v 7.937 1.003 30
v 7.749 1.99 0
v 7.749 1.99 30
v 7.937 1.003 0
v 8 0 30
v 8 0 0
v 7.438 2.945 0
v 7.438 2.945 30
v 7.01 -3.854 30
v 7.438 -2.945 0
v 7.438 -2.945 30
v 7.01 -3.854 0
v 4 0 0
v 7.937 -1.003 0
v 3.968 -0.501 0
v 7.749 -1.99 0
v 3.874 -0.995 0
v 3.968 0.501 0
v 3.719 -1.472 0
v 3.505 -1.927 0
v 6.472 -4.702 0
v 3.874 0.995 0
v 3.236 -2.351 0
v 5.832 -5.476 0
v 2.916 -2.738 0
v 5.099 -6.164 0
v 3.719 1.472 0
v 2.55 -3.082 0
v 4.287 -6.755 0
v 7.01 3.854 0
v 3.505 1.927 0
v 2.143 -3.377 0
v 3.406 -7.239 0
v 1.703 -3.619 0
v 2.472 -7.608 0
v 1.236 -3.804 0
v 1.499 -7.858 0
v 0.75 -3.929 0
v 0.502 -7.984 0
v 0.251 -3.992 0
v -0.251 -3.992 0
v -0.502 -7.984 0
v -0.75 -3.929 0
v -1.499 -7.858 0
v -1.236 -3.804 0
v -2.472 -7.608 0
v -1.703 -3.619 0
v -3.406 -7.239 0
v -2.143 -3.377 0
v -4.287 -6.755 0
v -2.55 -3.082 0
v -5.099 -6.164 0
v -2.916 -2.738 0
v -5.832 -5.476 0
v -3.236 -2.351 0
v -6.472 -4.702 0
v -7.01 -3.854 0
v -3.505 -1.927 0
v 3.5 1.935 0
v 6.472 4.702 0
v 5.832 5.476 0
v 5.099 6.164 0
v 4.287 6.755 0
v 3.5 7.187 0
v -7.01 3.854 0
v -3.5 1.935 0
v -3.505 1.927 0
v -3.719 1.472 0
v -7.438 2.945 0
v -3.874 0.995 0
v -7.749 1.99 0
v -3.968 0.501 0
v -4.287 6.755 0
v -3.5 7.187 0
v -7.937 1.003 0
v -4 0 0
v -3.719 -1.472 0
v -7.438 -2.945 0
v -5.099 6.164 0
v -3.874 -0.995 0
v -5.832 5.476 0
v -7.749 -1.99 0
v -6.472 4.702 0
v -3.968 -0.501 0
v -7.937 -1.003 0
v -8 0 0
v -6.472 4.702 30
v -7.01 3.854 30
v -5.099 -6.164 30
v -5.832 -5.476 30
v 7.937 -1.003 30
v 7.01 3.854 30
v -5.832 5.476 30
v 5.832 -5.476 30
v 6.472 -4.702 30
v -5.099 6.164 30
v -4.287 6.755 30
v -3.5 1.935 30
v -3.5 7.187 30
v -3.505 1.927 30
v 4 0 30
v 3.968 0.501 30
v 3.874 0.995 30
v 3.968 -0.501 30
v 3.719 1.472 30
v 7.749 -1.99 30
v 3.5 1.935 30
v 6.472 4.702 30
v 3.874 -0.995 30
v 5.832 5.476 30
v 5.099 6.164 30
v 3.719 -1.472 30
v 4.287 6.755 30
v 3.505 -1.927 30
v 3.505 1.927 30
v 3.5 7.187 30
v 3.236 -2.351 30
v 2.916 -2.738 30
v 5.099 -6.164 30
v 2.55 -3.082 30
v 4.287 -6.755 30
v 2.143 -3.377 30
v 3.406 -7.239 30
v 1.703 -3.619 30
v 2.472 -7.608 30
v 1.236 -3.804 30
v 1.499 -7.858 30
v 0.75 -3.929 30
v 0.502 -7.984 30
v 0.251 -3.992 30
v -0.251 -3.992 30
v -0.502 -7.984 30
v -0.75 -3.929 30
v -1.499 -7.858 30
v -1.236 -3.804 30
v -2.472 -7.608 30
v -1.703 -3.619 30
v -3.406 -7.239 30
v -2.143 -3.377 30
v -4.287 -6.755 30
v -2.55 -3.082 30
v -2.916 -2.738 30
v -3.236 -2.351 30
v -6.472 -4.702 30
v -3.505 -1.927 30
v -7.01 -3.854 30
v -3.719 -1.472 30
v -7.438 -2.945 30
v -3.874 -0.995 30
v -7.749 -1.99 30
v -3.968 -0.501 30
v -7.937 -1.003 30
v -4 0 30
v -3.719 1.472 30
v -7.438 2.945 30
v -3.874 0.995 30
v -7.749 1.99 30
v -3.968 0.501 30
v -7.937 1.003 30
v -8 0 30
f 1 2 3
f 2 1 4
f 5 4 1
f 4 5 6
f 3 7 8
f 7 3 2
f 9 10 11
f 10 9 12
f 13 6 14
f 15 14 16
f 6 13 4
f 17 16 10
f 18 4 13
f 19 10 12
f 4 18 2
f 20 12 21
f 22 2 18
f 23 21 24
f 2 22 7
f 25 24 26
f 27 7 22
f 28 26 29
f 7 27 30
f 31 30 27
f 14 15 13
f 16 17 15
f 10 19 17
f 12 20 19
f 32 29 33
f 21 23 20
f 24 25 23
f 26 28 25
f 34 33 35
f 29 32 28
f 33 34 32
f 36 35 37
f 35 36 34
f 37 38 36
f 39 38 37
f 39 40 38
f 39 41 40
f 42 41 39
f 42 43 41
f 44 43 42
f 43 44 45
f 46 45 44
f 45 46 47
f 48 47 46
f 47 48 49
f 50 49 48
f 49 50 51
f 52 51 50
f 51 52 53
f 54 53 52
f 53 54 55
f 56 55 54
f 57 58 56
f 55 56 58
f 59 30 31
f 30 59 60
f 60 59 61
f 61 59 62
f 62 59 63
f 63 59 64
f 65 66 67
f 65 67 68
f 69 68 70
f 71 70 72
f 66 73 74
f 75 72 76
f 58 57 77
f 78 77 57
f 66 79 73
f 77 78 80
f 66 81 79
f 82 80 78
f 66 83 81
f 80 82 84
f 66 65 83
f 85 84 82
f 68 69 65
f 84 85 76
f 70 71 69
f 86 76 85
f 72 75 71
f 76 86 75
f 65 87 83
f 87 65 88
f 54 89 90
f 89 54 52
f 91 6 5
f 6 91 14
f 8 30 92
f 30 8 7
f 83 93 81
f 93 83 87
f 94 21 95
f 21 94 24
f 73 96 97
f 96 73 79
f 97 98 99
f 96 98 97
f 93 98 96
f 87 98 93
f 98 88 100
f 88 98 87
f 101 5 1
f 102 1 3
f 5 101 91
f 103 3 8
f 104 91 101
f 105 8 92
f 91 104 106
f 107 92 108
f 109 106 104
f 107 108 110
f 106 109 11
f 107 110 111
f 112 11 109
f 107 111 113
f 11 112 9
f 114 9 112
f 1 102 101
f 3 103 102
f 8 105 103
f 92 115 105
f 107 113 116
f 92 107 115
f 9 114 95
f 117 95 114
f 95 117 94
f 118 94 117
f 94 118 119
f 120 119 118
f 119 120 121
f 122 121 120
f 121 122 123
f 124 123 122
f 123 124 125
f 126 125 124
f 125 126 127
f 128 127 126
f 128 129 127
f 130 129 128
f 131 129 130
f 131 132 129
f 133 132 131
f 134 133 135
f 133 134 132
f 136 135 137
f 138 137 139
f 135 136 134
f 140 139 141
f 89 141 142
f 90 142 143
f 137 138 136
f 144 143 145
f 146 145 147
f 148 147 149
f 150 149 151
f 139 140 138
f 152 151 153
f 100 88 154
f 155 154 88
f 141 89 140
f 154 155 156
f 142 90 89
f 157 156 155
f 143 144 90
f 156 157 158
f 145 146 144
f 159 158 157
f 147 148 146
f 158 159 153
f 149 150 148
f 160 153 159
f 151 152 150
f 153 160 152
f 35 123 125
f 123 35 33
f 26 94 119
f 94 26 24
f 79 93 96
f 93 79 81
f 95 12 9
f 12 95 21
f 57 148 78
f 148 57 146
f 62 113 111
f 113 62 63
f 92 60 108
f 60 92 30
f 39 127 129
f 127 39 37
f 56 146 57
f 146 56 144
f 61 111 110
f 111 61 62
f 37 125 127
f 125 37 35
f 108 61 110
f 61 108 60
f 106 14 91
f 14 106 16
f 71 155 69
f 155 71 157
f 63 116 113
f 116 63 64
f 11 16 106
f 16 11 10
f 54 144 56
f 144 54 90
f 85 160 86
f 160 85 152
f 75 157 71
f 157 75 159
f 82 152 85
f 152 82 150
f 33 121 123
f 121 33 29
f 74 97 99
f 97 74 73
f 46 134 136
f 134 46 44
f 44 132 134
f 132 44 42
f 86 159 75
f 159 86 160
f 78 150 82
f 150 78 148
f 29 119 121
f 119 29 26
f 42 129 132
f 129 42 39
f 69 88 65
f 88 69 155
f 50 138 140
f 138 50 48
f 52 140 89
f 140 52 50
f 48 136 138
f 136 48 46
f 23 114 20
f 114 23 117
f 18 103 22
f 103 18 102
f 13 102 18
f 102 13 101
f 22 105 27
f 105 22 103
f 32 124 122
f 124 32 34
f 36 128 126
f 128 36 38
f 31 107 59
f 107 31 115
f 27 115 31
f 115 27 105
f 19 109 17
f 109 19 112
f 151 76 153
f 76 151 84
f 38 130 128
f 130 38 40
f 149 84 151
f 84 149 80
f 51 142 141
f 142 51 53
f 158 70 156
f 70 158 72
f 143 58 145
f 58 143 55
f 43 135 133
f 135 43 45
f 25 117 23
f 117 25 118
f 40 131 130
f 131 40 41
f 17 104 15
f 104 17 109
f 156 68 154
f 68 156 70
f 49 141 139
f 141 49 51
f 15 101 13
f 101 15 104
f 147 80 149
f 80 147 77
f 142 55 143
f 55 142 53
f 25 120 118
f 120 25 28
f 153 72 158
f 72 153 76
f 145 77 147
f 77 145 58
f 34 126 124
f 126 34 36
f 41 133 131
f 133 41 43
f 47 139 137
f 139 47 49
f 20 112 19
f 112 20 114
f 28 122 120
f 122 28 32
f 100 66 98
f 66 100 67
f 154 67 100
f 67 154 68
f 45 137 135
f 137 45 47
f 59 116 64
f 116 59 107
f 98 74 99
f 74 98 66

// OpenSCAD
$fn=50;

r2=8;
r1=4;
gap=7;

ht=30;

difference() {
    cylinder(ht,r=r2);
    cylinder(ht,r=r1);
    translate([-gap/2,0,0]) cube([gap,r2,ht]);
}
